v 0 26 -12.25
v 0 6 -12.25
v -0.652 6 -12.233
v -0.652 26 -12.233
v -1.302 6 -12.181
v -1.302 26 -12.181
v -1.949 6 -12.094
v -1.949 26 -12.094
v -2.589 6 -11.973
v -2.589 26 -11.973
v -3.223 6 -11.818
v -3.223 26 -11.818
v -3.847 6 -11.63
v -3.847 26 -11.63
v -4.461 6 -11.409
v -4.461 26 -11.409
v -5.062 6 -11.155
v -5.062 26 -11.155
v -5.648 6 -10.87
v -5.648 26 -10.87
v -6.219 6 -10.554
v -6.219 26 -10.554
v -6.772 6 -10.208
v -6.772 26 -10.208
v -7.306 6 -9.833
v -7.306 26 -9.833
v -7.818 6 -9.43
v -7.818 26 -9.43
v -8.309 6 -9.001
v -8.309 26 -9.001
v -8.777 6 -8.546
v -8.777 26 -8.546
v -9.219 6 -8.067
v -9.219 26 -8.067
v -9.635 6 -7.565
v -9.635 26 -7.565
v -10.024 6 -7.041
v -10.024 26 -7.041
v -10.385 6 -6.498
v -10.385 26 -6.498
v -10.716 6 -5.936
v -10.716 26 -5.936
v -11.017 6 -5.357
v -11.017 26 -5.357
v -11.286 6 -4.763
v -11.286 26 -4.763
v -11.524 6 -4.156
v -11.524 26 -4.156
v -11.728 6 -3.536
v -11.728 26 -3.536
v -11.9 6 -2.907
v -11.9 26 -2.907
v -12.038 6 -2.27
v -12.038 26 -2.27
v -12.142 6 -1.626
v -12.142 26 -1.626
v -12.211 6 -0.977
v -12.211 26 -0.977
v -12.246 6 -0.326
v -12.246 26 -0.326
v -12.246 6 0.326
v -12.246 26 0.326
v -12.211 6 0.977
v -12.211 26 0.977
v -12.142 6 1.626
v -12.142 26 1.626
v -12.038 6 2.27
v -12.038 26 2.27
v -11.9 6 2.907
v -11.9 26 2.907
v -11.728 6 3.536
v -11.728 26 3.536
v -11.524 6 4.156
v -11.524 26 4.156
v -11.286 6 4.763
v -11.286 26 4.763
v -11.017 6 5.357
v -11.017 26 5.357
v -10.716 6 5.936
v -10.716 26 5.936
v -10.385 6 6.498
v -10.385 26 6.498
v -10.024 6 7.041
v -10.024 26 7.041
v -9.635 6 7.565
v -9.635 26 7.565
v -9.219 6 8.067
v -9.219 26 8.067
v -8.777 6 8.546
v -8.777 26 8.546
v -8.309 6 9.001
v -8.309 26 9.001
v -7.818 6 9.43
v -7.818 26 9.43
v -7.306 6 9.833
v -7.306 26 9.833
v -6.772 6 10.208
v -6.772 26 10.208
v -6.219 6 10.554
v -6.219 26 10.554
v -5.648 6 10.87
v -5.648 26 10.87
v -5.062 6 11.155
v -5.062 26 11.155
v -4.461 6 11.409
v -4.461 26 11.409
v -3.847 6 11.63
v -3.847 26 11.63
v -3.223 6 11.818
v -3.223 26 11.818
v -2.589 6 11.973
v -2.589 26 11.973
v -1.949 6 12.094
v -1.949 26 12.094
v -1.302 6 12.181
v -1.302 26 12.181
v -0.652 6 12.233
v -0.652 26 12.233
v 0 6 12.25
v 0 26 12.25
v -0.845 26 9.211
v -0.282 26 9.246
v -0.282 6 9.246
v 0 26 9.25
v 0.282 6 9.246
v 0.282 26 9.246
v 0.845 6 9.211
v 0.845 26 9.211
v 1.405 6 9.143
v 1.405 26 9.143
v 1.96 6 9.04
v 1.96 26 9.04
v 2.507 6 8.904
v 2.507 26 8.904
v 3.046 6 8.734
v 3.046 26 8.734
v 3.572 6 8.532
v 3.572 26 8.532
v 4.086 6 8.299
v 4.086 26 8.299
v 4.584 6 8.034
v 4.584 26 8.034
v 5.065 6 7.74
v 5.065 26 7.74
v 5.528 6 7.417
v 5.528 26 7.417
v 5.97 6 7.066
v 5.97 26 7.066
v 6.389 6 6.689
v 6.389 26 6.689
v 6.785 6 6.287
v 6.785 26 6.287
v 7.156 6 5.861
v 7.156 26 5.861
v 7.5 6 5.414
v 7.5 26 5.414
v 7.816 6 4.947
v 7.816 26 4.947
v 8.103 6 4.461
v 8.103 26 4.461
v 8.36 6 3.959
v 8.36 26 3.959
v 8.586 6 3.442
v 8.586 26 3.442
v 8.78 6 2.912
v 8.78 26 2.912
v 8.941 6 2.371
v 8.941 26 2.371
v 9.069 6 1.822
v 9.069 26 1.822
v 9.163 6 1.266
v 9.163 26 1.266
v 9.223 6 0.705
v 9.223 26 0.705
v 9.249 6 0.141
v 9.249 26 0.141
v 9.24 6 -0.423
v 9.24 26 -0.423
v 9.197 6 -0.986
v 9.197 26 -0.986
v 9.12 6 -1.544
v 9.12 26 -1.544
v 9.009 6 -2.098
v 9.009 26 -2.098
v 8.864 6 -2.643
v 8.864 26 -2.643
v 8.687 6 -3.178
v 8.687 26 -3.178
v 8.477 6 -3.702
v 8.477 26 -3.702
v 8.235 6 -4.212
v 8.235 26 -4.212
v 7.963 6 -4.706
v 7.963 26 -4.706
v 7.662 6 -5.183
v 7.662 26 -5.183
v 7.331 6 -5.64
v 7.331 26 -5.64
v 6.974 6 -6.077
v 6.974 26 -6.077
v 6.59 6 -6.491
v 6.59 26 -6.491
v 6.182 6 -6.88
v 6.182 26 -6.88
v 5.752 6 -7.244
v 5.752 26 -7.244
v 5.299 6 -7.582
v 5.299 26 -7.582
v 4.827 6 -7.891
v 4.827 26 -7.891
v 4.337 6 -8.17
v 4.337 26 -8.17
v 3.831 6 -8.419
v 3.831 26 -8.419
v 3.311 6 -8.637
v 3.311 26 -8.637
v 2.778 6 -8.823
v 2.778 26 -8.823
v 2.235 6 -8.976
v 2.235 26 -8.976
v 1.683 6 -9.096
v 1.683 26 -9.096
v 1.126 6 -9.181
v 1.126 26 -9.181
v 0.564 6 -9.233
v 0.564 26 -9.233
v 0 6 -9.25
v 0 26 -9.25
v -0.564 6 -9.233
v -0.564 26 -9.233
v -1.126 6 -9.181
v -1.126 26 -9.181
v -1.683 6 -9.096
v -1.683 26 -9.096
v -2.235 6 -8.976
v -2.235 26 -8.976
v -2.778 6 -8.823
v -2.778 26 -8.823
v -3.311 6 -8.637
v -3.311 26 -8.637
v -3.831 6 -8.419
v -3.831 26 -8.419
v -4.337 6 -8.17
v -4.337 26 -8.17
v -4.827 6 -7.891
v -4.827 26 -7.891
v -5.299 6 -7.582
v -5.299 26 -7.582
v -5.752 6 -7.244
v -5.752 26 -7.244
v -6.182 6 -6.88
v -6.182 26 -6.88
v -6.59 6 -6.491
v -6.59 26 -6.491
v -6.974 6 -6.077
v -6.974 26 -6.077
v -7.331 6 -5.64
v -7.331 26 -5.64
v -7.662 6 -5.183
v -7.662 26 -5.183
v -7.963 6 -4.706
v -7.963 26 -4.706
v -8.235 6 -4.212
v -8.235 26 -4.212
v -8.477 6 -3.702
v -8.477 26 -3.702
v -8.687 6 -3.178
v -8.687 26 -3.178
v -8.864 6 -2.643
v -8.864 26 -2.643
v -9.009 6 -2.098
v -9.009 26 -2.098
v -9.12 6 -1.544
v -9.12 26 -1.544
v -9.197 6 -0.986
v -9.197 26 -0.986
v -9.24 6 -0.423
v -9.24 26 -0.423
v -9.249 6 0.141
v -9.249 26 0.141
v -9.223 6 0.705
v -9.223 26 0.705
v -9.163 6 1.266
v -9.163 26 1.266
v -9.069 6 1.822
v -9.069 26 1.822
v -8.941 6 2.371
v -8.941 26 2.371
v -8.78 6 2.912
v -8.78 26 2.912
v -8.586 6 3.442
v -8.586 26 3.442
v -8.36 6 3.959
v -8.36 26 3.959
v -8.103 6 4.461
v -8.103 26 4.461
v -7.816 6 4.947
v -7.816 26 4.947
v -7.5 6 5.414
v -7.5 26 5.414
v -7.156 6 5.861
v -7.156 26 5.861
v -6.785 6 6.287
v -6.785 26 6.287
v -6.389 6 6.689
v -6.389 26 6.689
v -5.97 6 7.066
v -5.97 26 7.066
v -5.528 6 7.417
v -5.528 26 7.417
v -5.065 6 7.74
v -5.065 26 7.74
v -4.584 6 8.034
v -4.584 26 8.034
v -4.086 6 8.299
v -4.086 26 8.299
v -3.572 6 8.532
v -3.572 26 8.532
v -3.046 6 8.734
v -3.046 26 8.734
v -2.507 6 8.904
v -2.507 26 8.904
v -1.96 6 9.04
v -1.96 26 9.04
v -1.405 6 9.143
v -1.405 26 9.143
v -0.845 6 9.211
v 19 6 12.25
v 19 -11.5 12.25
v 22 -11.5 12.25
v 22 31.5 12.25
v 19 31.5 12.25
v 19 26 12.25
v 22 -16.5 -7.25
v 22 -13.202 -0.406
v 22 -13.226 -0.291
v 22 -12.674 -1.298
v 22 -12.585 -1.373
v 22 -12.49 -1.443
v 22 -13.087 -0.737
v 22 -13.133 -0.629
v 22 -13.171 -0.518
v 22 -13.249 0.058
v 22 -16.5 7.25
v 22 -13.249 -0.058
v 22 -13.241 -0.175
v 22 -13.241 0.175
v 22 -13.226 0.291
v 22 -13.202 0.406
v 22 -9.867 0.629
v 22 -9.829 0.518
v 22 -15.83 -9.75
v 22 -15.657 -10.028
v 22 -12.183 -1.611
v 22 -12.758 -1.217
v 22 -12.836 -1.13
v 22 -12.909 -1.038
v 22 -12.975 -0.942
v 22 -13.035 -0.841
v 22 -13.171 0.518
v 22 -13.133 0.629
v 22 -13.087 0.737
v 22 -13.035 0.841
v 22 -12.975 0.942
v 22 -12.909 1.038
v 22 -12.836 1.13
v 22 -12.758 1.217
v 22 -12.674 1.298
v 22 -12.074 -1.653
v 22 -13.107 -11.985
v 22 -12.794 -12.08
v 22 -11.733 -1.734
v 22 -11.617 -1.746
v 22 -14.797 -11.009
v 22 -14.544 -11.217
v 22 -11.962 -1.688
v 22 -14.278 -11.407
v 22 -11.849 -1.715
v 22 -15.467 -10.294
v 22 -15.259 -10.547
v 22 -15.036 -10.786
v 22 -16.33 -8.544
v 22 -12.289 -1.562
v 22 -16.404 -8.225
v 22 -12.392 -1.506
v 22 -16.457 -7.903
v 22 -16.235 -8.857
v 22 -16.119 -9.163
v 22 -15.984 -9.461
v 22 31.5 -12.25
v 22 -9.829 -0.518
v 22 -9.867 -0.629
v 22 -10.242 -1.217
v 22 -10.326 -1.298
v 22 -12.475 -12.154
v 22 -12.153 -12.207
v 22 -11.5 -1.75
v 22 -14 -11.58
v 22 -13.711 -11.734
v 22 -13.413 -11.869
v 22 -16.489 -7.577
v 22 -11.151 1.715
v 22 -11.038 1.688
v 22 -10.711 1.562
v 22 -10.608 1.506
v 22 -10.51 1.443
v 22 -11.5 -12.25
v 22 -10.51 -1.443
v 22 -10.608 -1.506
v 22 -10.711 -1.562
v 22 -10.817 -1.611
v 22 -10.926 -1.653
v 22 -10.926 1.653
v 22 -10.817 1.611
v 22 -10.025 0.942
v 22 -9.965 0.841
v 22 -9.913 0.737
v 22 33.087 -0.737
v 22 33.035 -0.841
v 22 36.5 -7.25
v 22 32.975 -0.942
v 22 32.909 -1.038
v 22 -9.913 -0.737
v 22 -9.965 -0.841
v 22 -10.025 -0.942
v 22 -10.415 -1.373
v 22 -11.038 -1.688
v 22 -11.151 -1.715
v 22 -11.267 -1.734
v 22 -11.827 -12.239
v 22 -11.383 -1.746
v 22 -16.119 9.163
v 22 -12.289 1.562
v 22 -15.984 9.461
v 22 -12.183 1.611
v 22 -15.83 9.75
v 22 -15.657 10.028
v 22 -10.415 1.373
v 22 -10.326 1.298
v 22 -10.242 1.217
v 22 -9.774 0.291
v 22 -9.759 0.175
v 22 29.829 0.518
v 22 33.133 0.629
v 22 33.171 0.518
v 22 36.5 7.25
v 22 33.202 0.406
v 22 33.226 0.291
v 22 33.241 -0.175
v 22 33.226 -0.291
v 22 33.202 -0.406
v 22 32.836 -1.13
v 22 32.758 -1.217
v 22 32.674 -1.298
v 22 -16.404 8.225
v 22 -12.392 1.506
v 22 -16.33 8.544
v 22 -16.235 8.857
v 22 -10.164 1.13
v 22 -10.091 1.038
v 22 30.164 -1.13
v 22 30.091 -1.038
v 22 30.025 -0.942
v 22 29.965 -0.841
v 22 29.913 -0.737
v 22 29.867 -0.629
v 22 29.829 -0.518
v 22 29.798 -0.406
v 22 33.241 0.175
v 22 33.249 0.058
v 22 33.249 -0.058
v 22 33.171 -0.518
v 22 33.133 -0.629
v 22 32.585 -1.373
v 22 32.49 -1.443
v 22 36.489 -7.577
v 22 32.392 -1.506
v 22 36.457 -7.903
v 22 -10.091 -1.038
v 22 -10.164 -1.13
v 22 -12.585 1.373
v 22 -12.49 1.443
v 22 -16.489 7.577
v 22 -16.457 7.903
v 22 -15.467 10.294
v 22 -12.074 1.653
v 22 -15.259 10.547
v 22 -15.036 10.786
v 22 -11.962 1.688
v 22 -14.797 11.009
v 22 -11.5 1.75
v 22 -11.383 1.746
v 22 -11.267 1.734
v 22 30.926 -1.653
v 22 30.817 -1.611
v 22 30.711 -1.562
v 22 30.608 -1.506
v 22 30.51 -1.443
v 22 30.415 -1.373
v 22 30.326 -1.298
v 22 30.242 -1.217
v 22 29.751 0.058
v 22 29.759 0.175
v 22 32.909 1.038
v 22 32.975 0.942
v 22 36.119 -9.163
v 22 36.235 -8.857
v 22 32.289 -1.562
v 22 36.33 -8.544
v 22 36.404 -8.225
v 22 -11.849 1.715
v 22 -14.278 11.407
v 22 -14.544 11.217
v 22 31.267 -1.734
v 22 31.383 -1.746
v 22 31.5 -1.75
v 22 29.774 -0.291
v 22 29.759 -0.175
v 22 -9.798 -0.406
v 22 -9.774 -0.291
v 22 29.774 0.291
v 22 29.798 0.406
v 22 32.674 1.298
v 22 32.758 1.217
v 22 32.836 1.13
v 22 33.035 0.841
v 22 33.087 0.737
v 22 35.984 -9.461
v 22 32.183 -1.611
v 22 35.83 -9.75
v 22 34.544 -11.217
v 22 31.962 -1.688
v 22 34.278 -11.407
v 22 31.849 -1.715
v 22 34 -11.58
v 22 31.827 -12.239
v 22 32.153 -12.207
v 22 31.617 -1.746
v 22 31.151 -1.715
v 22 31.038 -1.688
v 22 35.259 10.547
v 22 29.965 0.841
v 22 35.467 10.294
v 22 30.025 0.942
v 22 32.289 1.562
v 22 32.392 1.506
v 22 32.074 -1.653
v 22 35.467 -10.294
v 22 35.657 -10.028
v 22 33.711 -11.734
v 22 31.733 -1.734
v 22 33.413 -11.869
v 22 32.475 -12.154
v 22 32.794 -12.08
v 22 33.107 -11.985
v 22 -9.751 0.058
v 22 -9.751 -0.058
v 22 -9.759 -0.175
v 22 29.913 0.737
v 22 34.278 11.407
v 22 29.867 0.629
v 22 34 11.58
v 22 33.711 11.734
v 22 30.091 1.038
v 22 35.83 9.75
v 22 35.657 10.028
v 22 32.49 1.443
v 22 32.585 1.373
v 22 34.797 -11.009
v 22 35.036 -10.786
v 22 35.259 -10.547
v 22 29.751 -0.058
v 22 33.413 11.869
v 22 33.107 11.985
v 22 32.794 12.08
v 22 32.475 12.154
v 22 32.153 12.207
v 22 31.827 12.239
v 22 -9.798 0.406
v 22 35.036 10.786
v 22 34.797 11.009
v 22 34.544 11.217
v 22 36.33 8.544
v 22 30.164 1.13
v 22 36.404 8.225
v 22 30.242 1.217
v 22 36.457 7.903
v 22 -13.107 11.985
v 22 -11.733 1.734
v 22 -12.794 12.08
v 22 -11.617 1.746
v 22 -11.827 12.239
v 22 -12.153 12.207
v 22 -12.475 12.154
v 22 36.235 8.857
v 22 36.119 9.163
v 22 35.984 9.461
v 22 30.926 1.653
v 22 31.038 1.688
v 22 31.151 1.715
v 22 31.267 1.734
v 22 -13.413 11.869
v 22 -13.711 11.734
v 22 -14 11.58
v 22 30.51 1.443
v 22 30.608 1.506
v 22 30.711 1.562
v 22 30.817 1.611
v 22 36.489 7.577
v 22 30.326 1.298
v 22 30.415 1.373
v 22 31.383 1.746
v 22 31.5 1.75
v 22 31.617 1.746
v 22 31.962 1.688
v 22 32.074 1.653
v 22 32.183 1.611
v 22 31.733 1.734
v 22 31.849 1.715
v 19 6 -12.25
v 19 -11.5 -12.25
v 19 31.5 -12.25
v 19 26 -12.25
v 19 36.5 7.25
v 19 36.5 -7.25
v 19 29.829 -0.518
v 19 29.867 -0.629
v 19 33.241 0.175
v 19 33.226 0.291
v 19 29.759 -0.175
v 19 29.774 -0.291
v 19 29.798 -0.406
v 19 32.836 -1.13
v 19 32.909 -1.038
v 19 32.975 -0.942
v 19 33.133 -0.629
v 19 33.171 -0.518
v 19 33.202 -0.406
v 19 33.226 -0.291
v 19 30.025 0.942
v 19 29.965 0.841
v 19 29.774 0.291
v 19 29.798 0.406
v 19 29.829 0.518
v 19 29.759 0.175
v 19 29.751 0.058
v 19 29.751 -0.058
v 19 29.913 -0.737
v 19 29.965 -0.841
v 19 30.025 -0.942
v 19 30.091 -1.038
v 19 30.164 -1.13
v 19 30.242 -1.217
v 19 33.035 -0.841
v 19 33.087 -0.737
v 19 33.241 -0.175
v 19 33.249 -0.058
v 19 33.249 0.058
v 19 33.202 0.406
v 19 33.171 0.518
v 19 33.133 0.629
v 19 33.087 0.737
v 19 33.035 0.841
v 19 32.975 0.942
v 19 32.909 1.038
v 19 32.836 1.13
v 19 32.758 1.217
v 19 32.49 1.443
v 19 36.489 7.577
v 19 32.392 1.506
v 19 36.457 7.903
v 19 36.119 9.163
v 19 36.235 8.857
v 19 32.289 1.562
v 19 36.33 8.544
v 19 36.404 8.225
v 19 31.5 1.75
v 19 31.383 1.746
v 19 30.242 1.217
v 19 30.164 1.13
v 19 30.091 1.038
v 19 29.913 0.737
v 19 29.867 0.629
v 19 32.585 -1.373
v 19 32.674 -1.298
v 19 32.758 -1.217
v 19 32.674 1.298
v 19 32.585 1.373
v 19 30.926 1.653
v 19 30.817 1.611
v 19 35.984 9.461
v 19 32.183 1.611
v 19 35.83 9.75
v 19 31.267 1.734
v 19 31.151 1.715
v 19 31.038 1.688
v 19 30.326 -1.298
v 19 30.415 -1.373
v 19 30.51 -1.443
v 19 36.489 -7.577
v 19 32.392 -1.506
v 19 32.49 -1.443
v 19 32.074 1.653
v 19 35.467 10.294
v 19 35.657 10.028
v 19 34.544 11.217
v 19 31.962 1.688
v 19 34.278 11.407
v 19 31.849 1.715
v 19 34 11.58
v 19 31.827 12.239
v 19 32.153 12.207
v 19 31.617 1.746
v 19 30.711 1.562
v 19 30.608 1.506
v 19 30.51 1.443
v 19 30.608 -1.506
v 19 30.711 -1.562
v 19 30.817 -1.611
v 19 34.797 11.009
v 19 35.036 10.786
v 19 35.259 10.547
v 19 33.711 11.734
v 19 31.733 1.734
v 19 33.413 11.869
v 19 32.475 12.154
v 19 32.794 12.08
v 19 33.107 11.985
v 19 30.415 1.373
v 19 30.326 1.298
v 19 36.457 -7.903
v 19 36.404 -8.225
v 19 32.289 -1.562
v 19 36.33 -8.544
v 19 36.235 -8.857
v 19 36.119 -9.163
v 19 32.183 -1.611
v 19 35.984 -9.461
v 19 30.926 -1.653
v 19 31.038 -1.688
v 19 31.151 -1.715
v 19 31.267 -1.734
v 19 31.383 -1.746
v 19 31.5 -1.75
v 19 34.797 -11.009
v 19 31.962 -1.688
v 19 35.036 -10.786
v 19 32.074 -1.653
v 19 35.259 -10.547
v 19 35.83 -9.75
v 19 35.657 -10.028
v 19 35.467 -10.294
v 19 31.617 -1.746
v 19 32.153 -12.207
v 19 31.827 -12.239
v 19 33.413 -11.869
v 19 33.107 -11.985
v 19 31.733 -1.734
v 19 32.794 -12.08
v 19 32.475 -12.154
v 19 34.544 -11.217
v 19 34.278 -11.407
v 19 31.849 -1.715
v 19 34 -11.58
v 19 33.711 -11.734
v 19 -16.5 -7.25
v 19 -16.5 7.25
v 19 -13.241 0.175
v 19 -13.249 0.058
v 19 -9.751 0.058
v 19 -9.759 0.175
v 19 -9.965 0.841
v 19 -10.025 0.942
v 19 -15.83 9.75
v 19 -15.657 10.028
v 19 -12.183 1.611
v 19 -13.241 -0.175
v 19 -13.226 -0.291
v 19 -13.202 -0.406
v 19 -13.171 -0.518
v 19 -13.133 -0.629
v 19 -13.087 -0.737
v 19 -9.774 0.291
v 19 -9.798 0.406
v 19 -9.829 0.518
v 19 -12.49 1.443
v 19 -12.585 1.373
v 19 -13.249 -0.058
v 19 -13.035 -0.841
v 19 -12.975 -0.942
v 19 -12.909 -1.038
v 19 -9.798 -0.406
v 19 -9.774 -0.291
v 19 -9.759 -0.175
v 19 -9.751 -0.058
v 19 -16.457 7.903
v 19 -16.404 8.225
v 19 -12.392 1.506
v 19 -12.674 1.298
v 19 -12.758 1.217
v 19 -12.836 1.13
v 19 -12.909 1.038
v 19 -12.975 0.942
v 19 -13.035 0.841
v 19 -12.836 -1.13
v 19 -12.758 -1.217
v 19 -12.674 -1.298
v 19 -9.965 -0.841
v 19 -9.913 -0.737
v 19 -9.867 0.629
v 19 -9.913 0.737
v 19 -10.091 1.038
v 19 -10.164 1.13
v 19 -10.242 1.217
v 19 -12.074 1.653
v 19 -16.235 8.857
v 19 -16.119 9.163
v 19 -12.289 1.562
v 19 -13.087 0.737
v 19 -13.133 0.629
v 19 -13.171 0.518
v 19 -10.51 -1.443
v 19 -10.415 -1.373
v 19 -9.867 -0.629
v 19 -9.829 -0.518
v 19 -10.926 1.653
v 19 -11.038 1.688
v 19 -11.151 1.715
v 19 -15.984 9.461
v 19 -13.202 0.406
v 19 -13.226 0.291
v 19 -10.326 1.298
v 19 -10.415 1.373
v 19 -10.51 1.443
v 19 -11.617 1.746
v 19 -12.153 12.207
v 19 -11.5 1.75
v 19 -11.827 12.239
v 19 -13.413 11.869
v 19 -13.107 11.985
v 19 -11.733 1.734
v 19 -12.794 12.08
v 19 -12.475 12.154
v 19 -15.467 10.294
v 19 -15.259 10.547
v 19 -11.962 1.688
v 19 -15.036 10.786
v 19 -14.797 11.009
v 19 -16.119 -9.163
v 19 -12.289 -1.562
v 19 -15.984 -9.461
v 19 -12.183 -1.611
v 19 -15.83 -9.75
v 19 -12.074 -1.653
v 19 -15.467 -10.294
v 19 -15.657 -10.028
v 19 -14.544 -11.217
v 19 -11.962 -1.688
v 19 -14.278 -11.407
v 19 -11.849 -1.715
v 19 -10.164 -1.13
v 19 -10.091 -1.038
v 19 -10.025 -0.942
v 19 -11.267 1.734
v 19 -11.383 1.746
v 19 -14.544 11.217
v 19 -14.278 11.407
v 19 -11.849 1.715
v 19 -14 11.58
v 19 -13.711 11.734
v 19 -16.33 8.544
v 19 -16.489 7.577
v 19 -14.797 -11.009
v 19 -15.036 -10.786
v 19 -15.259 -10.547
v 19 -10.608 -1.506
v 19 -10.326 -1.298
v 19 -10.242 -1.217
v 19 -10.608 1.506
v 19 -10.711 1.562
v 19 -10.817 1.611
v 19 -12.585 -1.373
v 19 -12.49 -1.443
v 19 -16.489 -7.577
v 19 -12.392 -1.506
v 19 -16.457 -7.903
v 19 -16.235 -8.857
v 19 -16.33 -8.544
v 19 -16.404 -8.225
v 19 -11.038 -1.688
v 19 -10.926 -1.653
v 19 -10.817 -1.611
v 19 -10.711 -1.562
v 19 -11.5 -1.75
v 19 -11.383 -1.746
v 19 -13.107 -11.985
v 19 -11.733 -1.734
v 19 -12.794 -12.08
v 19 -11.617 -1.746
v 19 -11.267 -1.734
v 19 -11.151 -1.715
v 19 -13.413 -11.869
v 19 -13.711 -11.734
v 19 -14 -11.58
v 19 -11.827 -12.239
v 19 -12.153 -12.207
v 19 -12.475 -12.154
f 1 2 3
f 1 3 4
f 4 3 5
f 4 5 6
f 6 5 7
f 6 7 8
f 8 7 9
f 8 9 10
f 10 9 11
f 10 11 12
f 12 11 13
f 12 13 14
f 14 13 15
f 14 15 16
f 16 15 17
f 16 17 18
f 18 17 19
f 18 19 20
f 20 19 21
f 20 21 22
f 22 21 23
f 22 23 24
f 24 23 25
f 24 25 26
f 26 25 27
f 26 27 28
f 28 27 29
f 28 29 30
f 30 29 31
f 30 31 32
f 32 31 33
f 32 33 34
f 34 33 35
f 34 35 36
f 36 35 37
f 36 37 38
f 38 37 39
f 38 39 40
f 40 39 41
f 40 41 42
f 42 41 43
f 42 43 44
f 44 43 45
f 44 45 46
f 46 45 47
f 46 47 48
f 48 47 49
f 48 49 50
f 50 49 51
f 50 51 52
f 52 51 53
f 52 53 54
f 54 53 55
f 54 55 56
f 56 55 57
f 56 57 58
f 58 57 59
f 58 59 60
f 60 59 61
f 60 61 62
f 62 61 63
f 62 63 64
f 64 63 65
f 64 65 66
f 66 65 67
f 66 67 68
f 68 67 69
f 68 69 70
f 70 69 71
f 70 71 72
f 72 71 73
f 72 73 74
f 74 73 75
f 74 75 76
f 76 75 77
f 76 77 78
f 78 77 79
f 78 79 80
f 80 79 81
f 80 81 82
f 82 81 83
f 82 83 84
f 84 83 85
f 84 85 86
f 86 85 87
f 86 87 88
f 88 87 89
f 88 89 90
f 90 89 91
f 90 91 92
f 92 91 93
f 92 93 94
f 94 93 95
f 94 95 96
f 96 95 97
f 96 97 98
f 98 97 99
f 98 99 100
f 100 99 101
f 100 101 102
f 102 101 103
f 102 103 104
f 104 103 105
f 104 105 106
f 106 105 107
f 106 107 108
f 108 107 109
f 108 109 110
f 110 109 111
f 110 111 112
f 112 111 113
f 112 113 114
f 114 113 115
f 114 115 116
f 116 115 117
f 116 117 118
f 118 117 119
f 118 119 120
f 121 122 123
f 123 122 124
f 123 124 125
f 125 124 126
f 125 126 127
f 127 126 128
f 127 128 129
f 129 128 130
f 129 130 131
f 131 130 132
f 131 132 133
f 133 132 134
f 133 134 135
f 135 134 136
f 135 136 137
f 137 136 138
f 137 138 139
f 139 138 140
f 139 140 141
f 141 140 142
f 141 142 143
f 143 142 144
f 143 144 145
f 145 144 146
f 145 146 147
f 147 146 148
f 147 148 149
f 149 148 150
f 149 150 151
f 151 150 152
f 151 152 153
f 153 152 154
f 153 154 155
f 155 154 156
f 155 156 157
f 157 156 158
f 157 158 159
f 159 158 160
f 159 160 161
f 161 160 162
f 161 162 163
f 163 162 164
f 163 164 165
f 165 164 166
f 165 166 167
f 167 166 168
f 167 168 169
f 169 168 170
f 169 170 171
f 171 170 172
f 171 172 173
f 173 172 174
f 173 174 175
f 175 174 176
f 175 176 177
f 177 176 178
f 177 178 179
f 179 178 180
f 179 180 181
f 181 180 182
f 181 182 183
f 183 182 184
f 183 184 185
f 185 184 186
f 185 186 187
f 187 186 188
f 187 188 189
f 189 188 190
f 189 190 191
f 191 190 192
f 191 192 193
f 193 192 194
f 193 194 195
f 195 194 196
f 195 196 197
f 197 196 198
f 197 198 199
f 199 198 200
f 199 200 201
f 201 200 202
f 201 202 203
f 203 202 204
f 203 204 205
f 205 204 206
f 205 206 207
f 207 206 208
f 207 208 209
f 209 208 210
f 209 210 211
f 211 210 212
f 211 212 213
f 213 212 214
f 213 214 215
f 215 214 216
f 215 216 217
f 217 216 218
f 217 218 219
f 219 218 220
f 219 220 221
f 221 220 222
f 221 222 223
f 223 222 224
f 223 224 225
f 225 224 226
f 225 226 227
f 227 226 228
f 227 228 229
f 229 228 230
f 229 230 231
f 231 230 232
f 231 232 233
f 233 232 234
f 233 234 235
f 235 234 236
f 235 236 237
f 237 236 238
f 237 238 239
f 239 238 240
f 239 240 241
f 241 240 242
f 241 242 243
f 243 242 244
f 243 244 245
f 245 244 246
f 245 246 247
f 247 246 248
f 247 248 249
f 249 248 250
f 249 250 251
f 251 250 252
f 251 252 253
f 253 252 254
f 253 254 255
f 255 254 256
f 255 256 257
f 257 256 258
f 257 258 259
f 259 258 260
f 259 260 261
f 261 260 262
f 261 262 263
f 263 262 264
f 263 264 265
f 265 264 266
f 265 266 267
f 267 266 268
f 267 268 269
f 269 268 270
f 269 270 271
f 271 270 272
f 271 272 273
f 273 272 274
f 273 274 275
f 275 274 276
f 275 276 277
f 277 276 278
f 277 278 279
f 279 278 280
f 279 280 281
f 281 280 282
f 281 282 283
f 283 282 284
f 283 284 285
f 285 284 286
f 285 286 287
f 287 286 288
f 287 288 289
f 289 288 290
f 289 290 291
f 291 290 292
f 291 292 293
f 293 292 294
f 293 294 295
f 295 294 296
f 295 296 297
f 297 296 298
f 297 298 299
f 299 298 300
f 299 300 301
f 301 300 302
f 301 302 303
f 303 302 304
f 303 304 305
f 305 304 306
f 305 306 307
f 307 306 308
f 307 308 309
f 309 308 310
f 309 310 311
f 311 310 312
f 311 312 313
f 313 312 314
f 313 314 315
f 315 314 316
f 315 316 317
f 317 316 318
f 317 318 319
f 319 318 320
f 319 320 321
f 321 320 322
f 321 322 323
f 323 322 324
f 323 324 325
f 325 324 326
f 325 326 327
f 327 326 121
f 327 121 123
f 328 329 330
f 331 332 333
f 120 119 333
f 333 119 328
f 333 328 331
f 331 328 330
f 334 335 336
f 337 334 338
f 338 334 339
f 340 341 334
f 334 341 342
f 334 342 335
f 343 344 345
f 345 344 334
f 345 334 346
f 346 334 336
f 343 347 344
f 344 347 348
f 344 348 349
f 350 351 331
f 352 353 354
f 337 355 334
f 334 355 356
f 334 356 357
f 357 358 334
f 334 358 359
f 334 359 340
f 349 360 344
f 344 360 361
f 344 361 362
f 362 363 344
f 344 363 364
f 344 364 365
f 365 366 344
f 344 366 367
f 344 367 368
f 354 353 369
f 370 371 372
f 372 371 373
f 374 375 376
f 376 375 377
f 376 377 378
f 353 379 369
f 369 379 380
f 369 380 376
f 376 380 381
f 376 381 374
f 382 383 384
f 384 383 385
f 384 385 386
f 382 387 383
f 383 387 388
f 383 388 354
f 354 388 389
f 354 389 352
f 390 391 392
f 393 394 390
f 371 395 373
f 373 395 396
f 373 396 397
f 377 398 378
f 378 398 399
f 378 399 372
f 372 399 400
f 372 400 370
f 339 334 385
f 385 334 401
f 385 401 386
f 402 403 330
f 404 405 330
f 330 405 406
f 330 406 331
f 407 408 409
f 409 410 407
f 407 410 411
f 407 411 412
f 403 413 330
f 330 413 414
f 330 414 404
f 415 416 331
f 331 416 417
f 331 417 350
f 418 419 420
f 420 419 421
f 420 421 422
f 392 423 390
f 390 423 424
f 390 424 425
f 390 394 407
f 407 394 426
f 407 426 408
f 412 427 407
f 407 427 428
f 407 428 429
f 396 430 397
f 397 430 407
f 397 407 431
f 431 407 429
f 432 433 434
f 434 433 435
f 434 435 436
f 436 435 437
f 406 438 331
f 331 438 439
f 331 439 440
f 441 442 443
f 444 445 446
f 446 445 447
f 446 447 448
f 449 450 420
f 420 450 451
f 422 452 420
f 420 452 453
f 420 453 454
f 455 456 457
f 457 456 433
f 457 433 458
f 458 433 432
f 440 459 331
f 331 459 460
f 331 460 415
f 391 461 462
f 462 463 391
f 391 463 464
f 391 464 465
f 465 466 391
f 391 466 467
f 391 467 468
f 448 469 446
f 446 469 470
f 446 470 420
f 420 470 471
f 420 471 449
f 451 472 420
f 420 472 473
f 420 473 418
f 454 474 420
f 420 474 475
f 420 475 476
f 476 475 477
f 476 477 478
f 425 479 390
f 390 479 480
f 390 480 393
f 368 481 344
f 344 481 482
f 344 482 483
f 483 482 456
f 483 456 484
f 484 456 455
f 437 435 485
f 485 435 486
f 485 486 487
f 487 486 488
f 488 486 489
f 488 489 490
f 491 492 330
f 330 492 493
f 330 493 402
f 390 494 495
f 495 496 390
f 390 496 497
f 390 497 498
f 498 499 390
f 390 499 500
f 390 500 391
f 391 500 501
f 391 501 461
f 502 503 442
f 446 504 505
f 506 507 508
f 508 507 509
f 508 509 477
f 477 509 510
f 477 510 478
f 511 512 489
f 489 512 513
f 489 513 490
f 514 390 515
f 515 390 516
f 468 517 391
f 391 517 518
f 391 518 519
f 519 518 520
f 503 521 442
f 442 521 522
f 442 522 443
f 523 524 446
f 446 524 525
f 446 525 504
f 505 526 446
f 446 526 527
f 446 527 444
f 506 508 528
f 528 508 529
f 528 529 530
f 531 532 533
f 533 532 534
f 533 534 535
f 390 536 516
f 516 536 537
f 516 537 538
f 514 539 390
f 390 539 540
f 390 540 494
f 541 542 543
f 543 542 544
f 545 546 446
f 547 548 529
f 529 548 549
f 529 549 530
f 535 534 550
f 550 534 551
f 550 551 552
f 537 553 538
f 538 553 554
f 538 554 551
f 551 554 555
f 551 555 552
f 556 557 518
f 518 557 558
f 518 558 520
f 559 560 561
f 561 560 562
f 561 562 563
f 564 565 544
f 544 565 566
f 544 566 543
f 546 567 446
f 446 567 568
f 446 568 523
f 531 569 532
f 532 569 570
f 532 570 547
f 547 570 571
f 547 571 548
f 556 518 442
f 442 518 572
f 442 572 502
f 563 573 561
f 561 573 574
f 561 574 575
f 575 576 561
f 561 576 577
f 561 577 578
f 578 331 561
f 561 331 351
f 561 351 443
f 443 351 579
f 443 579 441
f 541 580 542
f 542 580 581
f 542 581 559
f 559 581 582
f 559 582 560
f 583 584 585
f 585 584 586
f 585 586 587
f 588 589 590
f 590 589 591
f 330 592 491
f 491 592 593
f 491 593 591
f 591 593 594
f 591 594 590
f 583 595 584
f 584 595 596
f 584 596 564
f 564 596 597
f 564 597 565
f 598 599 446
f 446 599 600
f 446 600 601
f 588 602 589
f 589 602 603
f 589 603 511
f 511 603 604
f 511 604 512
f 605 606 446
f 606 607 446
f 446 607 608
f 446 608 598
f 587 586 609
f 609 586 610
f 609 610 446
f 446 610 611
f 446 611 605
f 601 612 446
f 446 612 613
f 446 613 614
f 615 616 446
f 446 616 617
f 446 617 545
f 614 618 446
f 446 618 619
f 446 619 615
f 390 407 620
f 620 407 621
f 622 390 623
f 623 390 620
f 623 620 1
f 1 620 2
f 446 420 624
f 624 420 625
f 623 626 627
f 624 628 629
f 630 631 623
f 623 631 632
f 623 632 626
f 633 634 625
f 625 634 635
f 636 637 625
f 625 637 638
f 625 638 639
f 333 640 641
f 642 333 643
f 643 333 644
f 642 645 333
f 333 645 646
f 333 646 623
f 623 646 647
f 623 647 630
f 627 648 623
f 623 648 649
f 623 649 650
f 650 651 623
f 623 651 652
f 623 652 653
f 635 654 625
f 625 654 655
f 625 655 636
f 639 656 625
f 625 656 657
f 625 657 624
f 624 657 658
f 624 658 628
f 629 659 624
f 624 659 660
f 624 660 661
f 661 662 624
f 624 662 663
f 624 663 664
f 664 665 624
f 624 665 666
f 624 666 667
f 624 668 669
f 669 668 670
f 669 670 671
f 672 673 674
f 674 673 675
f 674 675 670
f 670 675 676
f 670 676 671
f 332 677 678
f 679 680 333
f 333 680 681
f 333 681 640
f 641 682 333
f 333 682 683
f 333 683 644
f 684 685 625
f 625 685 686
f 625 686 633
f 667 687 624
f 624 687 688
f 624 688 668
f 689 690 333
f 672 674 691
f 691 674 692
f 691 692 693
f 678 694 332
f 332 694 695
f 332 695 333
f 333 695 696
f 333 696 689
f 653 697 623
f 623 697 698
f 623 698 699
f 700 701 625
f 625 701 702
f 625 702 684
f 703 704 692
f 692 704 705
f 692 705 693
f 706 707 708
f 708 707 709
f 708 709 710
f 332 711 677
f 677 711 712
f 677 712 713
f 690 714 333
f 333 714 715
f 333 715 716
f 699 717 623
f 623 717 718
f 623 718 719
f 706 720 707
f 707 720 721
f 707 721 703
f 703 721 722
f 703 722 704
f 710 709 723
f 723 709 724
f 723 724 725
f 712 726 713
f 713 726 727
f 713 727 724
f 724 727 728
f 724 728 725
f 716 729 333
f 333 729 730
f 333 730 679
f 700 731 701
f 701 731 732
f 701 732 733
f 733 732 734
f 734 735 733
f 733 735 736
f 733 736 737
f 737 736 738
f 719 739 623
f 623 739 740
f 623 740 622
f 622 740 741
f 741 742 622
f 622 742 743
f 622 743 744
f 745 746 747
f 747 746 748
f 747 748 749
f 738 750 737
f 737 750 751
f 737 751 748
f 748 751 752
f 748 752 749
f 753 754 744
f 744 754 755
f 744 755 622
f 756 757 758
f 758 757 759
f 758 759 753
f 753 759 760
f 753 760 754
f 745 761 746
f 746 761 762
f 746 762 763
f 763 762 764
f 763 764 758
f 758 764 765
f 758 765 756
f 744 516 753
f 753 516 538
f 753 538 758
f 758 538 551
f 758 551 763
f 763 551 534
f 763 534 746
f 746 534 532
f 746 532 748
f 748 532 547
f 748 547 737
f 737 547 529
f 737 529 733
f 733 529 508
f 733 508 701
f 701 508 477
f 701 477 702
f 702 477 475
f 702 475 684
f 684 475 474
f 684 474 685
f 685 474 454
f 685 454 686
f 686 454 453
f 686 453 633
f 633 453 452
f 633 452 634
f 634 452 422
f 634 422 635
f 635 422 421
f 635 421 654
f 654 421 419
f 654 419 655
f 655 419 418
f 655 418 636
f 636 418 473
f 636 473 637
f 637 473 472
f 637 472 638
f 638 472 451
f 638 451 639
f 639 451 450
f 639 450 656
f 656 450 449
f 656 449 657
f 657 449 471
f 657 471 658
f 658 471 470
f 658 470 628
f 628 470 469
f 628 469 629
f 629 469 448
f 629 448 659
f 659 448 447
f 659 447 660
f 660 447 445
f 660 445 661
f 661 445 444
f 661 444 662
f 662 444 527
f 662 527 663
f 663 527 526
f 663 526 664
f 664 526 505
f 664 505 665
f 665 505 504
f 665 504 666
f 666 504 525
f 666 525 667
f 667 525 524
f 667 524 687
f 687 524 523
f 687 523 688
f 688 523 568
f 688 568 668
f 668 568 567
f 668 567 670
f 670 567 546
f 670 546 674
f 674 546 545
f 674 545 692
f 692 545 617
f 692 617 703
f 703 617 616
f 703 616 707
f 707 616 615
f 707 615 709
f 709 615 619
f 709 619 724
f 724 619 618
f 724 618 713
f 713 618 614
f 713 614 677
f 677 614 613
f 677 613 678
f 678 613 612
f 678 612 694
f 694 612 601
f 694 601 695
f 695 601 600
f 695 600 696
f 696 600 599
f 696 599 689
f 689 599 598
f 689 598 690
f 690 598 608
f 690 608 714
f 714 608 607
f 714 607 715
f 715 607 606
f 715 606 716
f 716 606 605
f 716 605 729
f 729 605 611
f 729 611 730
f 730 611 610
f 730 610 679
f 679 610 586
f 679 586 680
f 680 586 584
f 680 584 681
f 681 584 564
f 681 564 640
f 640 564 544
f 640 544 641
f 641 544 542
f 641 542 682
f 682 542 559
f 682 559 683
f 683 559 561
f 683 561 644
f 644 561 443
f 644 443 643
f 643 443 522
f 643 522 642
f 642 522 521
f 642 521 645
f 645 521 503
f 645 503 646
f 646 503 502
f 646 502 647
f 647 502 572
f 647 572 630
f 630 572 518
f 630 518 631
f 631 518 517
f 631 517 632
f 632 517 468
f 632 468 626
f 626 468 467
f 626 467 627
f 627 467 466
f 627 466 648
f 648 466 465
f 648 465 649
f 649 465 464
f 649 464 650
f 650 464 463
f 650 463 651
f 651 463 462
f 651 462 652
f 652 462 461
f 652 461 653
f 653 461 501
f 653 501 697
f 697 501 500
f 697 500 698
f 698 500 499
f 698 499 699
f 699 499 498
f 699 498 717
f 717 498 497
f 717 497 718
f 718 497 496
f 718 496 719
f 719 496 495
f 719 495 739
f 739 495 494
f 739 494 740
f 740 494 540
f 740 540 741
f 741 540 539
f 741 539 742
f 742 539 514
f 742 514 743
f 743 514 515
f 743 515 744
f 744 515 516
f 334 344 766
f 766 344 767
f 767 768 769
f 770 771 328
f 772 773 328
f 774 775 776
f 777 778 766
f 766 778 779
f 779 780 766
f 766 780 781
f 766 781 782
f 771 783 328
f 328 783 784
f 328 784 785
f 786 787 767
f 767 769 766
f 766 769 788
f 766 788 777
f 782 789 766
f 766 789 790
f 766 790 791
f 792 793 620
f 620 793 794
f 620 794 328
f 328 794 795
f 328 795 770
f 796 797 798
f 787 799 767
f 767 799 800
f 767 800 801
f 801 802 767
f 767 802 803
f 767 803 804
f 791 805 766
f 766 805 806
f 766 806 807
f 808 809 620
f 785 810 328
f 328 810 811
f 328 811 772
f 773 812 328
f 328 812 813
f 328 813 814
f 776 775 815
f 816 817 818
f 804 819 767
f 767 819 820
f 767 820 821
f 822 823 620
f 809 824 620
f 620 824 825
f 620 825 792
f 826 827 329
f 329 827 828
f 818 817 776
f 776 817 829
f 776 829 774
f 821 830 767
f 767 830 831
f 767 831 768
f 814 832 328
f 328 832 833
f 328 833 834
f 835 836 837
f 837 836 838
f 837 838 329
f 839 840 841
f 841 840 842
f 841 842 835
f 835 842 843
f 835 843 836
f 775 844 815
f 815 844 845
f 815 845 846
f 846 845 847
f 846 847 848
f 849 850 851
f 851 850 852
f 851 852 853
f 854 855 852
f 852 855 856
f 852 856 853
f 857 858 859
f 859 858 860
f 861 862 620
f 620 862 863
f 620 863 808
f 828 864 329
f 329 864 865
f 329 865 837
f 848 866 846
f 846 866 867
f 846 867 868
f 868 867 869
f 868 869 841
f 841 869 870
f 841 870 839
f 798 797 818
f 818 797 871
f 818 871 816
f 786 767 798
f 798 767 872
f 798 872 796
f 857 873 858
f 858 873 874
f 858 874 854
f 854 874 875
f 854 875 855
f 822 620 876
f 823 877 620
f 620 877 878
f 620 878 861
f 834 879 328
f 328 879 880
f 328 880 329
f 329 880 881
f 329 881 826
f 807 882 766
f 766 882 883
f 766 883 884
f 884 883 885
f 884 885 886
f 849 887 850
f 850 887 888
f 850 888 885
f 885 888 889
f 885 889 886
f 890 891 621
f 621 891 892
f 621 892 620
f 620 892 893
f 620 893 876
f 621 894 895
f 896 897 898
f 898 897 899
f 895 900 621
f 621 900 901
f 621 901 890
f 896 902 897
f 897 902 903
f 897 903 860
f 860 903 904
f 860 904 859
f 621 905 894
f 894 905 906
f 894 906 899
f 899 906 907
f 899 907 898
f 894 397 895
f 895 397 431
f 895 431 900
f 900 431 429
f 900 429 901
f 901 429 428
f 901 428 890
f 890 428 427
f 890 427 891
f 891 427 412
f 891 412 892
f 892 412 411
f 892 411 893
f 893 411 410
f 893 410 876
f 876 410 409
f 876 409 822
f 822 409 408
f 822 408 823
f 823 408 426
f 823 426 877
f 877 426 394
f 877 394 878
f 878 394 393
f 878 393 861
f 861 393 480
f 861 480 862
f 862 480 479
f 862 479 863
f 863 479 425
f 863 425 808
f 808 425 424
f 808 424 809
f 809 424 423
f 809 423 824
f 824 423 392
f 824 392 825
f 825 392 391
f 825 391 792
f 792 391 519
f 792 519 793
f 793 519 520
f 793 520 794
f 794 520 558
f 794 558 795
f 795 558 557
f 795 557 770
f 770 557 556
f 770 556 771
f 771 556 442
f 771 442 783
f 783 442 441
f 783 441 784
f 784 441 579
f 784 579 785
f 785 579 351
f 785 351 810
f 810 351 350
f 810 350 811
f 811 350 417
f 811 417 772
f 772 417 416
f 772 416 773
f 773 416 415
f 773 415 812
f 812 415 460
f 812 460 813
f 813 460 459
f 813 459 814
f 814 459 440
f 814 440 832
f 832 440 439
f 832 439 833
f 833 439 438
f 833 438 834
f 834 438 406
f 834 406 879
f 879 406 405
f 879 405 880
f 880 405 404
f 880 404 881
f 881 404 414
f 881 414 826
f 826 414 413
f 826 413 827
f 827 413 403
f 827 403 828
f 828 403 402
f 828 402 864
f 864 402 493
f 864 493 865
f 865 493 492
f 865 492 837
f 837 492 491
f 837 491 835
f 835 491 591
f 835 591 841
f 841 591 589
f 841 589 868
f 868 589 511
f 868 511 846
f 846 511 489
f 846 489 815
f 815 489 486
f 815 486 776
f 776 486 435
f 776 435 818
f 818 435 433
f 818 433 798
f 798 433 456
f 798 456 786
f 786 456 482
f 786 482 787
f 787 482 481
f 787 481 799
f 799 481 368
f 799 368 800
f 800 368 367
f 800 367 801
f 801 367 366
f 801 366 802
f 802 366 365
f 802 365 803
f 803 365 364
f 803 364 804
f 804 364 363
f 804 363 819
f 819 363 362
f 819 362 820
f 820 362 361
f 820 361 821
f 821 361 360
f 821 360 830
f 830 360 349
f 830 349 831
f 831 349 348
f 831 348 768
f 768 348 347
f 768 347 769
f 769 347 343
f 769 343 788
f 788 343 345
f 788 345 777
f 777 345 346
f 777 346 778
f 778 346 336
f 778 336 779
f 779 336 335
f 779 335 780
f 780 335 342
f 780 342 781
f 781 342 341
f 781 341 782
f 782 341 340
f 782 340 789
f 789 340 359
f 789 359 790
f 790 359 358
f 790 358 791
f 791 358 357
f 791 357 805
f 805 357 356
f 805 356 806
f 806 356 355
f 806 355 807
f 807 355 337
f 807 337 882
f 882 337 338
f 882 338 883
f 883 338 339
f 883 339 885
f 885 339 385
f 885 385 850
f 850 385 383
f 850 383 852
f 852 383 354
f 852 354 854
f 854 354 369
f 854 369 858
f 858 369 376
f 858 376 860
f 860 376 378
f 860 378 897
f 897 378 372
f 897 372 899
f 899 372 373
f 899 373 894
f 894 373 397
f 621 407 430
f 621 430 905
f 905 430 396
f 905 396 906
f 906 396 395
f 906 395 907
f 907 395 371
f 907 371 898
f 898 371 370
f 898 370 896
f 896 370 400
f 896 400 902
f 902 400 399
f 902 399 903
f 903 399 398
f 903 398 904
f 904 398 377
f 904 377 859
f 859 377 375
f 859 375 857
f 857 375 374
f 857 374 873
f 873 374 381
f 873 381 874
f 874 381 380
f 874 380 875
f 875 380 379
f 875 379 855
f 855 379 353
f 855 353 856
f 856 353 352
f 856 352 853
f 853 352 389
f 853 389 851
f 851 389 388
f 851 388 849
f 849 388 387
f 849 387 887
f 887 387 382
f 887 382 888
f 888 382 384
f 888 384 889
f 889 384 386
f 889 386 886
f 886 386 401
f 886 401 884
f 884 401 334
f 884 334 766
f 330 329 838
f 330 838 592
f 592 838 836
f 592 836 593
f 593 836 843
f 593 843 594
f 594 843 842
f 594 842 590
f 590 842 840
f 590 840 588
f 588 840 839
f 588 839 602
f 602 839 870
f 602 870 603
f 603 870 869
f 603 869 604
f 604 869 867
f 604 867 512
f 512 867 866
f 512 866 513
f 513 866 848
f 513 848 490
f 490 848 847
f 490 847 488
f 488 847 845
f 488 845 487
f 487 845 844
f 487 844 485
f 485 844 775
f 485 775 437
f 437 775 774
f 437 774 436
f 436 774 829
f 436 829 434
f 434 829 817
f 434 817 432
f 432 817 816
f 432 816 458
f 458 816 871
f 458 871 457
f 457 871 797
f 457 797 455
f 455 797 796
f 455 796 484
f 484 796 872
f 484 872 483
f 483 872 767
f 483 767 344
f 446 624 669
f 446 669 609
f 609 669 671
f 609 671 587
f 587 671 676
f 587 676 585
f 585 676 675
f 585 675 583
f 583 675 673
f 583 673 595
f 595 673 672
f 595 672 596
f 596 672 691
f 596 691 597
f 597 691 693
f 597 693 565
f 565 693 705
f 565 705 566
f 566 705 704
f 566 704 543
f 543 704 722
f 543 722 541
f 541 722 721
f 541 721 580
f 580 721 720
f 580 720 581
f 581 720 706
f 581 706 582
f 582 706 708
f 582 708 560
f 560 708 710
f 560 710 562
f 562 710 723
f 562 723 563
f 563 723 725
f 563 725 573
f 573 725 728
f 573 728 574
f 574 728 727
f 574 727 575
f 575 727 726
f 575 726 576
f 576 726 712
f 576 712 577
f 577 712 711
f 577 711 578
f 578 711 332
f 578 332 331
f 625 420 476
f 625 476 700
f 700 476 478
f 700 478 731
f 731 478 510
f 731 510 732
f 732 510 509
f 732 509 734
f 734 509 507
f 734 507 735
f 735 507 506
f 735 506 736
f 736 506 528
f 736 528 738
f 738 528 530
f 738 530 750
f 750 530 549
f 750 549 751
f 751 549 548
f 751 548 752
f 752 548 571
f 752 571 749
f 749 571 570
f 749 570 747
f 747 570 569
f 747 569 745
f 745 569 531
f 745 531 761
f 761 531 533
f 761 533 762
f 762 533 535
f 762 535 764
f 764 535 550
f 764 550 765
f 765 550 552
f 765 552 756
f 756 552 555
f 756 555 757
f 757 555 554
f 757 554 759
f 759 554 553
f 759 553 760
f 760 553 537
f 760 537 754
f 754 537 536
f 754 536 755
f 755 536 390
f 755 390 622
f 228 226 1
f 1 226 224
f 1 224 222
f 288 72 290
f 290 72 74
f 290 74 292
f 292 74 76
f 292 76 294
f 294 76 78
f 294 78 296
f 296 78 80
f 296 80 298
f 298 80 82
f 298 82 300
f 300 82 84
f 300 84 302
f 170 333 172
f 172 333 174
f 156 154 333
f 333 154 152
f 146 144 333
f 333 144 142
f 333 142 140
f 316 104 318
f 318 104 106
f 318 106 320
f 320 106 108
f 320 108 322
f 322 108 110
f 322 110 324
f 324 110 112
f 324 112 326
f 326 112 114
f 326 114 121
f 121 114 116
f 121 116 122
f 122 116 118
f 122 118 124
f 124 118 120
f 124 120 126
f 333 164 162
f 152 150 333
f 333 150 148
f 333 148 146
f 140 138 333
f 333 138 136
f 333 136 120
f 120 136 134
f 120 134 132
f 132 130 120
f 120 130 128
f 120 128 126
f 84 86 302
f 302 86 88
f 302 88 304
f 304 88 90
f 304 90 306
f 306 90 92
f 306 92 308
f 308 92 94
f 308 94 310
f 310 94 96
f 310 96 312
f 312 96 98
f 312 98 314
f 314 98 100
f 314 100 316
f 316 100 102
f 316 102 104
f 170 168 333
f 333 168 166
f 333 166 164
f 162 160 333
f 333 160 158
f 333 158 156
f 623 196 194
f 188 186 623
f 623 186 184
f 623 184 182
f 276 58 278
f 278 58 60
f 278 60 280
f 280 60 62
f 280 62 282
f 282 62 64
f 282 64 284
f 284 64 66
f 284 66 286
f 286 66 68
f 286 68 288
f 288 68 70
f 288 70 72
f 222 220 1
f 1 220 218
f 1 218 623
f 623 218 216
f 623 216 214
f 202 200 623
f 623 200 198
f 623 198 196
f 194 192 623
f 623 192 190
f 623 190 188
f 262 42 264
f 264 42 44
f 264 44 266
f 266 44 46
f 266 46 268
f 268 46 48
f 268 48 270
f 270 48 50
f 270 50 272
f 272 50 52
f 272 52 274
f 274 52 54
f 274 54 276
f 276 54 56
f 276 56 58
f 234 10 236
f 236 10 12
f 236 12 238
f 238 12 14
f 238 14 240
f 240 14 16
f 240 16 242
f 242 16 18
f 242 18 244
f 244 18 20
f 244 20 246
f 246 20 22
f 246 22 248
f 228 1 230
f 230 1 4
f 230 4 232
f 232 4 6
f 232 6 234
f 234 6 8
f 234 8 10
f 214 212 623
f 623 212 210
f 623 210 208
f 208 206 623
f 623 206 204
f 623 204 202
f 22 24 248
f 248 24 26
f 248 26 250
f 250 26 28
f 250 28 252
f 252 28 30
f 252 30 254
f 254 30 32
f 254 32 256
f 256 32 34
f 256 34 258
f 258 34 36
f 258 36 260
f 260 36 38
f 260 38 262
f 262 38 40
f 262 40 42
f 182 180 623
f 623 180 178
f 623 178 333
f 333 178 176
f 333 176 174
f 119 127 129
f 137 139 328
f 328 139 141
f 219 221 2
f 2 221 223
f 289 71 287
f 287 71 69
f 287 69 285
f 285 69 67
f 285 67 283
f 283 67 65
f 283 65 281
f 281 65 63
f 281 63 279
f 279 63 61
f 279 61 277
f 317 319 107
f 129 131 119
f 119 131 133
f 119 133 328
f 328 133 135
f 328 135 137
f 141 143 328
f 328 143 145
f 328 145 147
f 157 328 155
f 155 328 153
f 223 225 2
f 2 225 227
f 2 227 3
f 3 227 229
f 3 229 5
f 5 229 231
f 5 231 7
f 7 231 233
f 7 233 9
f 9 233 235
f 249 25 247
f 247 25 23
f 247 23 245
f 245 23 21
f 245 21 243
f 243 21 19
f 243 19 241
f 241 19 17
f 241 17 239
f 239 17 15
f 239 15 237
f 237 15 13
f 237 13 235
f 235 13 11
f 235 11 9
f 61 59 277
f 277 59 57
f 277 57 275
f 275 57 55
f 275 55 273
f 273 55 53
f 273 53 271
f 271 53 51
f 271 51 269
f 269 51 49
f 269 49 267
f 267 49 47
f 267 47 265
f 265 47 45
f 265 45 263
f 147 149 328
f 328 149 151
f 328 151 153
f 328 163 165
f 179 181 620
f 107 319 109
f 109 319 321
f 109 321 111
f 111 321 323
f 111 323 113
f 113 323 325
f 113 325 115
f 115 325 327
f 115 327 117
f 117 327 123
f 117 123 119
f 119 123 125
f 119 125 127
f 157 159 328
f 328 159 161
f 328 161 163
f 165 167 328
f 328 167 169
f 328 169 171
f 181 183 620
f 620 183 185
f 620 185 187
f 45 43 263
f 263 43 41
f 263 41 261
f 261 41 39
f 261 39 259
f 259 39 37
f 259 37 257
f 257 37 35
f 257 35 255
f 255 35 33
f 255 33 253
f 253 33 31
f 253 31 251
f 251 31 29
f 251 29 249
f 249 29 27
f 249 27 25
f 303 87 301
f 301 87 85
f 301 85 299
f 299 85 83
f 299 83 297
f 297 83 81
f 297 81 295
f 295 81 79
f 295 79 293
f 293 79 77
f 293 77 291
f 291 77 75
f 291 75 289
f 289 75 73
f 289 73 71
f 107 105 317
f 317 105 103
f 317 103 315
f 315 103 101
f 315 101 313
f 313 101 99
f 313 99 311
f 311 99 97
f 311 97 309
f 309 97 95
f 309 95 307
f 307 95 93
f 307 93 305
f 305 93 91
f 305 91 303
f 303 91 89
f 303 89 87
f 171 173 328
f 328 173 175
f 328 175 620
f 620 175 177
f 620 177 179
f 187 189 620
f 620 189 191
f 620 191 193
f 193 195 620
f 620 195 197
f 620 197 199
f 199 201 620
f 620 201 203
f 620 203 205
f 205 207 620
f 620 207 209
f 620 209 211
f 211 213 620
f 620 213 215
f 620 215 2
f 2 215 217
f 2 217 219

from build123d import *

# Parameters (mm, degrees)
BOSS_EXTRUDE1_DEPTH = 20
SKETCH2_W           = 24.5
SKETCH2_H           = 16.5
SKETCH2_R           = 1.75
BOSS_EXTRUDE2_DEPTH = 3
FILLET1_R           = 5
SKETCH4_R           = 9.25
BOSS_EXTRUDE4_DEPTH = 6
SKETCH3_R           = 9.25
CUT_EXTRUDE1_DEPTH  = 6


with BuildPart() as part:
    # Sketch1 → Boss-Extrude1 (new body)
    with BuildSketch(Plane(origin=(0, 0, 0), x_dir=(1, 0, 0), z_dir=(0, 1, 0))):
        with BuildLine():
            Line((0, 12.25), (0, 9.25))
            ThreePointArc((0, 9.25), (6.540737726, 6.540737726), (9.25, 0))
            ThreePointArc((9.25, 0), (6.540737726, -6.540737726), (0, -9.25))
            Line((0, -9.25), (0, -12.25))
            Line((0, -12.25), (22, -12.25))
            Line((22, -12.25), (22, 12.25))
            Line((22, 12.25), (0, 12.25))
        make_face()
        with BuildLine():
            ThreePointArc((0, -9.25), (-9.25, 0), (0, 9.25))
            Line((0, 9.25), (0, 12.25))
            ThreePointArc((0, 12.25), (-12.25, 0), (0, -12.25))
            Line((0, -12.25), (0, -9.25))
        make_face()
    extrude(amount=BOSS_EXTRUDE1_DEPTH)

    # Sketch2 → Boss-Extrude2 (add)
    with BuildSketch(Plane(origin=(22, 0, 0), x_dir=(0, 0, -1), z_dir=(1, 0, 0))):
        with Locations((0, 28.25)):
            Rectangle(SKETCH2_W, SKETCH2_H)
        with Locations((0, 31.5)):
            Circle(SKETCH2_R, mode=Mode.SUBTRACT)
        with Locations((0, -8.25)):
            Rectangle(SKETCH2_W, SKETCH2_H)
        with Locations(Location((0, -11.5, 0), (0, 0, 180))):
            Circle(SKETCH2_R, mode=Mode.SUBTRACT)
    extrude(amount=-BOSS_EXTRUDE2_DEPTH)

    # Fillet1
    fillet1_edges = [part.edges().sort_by_distance(p)[0] for p in [
        (20.5, 36.5, 12.25),
        (20.5, 36.5, -12.25),
        (20.5, -16.5, -12.25),
        (20.5, -16.5, 12.25),
    ]]
    fillet(fillet1_edges, radius=FILLET1_R)

    # Sketch4 → Boss-Extrude4 (add)
    with BuildSketch(Plane(origin=(0, 20, 0), x_dir=(1, 0, 0), z_dir=(0, 1, 0))):
        with BuildLine():
            Line((0, -12.25), (19, -12.25))
            Line((19, -12.25), (19, 12.25))
            Line((19, 12.25), (0, 12.25))
            ThreePointArc((0, 12.25), (-12.25, 0), (0, -12.25))
        make_face()
        with Locations(Location((0, 0, 0), (0, 0, 270))):
            Circle(SKETCH4_R, mode=Mode.SUBTRACT)
    extrude(amount=BOSS_EXTRUDE4_DEPTH)

    # Sketch3 → Cut-Extrude1 (cut)
    with BuildSketch(Plane.XZ):
        with BuildLine():
            Line((0, -12.25), (19, -12.25))
            Line((19, -12.25), (19, 12.25))
            Line((19, 12.25), (0, 12.25))
            ThreePointArc((0, 12.25), (-12.25, 0), (0, -12.25))
        make_face()
        with Locations(Location((0, 0, 0), (0, 0, 270))):
            Circle(SKETCH3_R, mode=Mode.SUBTRACT)
    extrude(amount=-CUT_EXTRUDE1_DEPTH, mode=Mode.SUBTRACT)


solid = part.part
